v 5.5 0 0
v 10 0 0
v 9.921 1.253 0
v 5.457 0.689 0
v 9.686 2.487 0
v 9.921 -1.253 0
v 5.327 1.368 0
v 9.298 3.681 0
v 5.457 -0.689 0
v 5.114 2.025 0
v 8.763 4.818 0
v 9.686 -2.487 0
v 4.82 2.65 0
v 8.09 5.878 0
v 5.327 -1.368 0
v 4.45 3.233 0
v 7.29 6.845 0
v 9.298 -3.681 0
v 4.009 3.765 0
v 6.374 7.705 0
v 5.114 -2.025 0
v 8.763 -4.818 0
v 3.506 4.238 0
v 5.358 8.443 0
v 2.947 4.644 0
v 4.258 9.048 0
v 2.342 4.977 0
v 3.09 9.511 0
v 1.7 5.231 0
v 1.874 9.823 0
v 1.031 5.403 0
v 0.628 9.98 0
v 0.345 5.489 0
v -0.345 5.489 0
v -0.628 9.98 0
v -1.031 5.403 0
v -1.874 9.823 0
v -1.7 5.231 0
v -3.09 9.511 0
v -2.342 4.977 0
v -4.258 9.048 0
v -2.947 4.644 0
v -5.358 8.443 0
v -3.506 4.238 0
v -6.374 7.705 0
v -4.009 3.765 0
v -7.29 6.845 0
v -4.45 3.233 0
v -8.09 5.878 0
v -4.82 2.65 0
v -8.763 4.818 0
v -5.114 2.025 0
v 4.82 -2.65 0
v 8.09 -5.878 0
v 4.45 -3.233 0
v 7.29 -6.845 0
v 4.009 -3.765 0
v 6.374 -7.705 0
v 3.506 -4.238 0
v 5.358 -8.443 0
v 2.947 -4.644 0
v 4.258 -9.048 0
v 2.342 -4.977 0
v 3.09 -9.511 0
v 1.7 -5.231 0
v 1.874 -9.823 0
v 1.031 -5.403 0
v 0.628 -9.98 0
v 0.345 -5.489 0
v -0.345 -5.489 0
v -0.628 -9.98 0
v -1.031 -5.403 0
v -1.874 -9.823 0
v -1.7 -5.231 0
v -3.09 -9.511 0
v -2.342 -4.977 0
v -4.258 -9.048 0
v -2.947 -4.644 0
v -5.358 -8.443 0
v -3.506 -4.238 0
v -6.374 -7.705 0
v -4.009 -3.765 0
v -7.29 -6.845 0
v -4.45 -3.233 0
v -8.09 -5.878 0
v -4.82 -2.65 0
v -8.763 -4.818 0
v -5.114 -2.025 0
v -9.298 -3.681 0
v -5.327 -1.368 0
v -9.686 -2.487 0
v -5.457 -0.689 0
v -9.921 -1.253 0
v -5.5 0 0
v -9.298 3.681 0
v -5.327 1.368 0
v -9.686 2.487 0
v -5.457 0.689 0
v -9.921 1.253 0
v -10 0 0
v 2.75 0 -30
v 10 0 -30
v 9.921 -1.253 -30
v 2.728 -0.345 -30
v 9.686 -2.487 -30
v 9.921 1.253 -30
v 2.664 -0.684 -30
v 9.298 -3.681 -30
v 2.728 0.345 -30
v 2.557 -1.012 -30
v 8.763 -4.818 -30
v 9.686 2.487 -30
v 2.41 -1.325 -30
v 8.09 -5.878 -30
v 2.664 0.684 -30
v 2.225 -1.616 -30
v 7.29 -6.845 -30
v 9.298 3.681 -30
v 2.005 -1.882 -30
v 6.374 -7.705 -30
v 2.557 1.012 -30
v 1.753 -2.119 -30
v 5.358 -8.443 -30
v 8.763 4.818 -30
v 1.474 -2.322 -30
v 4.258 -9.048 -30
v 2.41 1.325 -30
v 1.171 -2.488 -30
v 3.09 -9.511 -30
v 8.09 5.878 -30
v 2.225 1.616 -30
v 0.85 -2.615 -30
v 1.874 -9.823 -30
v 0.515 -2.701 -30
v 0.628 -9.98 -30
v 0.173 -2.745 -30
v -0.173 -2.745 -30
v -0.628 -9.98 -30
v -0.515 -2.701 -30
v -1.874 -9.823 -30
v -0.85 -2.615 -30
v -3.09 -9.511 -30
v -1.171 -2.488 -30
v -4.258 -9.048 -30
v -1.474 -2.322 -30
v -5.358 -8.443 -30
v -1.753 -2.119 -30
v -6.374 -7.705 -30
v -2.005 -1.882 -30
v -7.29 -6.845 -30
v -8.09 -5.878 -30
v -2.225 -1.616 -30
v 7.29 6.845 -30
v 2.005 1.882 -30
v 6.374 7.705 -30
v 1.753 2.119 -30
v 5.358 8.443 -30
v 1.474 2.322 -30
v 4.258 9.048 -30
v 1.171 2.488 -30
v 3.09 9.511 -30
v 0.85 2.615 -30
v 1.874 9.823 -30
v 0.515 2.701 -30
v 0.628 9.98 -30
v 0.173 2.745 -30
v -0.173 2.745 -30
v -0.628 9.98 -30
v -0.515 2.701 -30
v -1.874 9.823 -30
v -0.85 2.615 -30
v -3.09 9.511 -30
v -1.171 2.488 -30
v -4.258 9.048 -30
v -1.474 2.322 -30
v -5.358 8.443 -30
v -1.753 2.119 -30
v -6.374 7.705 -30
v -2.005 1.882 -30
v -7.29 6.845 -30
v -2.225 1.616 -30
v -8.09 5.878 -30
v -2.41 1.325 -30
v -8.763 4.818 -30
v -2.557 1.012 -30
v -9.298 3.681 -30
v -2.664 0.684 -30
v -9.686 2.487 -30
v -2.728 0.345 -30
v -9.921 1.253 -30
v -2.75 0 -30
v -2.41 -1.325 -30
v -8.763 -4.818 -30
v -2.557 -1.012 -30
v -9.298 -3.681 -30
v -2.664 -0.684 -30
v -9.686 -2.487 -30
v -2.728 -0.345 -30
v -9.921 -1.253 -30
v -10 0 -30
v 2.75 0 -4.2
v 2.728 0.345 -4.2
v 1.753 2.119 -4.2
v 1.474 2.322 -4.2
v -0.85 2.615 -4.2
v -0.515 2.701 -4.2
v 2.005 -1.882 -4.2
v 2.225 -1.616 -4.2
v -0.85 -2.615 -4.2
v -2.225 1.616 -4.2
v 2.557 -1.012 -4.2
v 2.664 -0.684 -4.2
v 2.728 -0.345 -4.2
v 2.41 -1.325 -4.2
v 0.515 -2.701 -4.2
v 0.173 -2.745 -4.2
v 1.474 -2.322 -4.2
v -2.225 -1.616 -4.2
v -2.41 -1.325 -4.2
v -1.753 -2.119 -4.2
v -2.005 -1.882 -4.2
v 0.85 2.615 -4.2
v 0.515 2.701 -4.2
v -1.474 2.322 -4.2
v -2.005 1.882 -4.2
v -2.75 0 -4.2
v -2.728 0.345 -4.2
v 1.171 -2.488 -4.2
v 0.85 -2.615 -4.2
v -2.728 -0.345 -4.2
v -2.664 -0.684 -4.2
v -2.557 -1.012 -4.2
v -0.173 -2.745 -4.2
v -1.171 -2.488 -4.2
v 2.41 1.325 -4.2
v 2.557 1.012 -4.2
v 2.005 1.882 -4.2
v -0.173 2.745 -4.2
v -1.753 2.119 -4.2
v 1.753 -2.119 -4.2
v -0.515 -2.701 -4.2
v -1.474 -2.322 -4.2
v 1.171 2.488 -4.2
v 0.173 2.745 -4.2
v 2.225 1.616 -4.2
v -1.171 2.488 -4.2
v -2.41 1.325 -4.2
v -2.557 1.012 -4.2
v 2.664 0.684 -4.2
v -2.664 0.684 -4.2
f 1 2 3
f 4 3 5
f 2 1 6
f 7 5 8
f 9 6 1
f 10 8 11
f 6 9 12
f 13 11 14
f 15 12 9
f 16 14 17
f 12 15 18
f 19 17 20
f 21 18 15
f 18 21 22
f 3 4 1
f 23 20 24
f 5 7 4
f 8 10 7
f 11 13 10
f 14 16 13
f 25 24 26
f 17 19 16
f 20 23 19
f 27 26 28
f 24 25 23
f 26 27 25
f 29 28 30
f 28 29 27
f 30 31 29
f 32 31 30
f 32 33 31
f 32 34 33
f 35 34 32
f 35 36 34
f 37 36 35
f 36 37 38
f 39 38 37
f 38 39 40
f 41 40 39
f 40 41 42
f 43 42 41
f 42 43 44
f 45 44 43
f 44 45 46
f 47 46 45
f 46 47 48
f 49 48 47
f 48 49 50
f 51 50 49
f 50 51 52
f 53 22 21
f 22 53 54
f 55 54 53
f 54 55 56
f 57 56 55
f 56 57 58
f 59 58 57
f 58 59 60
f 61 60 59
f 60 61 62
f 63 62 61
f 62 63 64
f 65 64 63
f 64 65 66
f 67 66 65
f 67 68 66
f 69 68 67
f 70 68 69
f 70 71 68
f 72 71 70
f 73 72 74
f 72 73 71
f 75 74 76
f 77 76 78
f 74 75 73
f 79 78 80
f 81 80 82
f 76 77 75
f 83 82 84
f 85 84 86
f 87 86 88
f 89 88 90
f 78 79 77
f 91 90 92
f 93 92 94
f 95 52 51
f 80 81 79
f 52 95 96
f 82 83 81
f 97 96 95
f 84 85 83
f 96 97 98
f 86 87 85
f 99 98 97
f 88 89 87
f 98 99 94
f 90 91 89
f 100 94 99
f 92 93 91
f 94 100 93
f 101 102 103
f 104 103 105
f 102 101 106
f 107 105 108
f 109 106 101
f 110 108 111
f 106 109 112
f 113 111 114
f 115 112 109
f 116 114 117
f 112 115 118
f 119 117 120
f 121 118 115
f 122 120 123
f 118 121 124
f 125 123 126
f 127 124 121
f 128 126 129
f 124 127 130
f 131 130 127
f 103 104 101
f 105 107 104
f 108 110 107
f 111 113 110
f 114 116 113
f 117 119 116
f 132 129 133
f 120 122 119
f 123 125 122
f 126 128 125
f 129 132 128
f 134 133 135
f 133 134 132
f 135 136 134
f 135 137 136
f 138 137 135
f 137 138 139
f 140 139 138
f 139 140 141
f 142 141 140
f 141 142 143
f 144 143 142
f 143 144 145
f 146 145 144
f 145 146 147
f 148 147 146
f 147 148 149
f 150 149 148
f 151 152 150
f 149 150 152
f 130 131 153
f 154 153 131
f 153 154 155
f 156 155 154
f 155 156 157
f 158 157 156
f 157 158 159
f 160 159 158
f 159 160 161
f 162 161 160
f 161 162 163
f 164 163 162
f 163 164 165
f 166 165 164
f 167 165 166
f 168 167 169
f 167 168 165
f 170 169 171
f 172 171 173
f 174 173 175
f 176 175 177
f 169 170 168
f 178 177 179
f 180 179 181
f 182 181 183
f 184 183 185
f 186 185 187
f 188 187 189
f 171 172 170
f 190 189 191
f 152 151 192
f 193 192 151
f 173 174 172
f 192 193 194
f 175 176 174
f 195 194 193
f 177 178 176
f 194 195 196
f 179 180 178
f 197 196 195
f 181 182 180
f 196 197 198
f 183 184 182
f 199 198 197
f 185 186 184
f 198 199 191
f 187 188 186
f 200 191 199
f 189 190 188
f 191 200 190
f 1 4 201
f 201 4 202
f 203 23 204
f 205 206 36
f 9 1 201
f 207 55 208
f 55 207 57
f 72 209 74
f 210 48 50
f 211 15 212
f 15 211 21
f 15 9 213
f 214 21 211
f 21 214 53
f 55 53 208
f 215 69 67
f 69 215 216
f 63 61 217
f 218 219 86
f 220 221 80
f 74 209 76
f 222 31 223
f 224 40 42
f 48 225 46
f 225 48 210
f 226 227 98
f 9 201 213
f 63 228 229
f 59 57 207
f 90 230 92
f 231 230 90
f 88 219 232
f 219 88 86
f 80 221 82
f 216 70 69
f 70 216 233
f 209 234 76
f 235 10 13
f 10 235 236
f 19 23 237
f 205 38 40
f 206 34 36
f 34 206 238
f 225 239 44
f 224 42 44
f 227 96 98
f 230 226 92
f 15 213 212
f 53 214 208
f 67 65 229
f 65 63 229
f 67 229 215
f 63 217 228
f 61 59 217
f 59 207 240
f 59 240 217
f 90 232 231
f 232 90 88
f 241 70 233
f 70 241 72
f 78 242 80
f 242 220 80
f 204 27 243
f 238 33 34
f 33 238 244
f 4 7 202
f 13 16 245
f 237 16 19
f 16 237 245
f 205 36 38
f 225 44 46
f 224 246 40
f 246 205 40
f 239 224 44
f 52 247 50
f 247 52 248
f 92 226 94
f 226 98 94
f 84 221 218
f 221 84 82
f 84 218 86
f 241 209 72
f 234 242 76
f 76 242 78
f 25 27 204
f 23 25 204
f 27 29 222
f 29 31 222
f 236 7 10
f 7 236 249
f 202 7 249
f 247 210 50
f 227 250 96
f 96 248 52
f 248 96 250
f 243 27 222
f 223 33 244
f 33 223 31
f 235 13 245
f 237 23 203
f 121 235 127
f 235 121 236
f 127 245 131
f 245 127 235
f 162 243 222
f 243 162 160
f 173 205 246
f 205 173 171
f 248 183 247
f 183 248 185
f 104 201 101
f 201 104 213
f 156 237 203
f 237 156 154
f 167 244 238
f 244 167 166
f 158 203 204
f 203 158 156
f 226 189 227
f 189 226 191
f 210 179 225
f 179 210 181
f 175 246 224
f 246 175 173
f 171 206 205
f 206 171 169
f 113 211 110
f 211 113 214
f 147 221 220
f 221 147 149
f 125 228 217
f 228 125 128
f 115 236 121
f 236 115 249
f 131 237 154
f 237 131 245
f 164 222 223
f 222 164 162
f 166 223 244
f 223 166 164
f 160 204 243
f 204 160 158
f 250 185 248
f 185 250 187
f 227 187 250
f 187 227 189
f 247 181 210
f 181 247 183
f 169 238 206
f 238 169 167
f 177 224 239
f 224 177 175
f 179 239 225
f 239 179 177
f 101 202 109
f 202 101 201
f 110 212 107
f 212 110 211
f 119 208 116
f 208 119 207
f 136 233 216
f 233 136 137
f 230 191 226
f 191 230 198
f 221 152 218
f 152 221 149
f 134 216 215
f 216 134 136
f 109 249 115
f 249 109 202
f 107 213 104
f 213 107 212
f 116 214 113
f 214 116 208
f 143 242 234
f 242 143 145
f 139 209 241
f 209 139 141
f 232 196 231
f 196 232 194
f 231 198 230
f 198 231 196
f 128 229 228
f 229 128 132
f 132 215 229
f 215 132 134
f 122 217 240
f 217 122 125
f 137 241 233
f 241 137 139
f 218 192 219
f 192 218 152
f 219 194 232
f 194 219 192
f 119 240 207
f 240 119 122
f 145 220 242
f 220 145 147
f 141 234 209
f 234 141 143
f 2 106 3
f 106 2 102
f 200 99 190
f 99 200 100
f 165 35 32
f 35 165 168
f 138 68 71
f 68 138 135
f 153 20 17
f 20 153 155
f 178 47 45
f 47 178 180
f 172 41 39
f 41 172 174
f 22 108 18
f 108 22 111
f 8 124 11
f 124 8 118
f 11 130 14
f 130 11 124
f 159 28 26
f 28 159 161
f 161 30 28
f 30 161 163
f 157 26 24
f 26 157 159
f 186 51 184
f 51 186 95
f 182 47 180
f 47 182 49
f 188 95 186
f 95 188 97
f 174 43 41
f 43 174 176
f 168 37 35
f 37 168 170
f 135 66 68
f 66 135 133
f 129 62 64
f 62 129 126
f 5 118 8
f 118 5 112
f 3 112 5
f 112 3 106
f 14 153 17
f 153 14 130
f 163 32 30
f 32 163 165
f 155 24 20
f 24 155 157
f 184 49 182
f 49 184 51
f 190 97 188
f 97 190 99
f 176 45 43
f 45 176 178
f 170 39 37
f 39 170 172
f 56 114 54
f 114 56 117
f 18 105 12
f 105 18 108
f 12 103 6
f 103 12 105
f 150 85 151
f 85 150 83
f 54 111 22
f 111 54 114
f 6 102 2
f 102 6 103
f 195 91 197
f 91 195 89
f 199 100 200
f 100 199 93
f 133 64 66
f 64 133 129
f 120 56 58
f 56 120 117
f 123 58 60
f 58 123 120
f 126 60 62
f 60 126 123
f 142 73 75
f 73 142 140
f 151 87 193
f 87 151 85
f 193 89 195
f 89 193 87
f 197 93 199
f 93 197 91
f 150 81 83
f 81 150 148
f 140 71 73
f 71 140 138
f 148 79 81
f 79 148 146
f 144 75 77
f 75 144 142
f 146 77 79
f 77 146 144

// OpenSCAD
$fn = 50;


difference() {
	union() {
		translate(v = [0, 0, -30.0000000000]) {
			cylinder(h = 30, r = 10.0000000000);
		}
		cylinder(h = 0, r = 16.0000000000);
	}
	union() {
		translate(v = [0, 0, 0]) {
			rotate(a = [0, 0, 0]) {
				difference() {
					union() {
						#translate(v = [0, 0, -30.0000000000]) {
							cylinder(h = 30, r = 2.2500000000);
						}
						#translate(v = [0, 0, -4.2000000000]) {
							cylinder(h = 4.2000000000, r1 = 2.7500000000, r2 = 5.5000000000);
						}
						#translate(v = [0, 0, -30.0000000000]) {
							cylinder(h = 30, r = 2.7500000000);
						}
						#translate(v = [0, 0, -30.0000000000]) {
							cylinder(h = 30, r = 2.2500000000);
						}
					}
					union();
				}
			}
		}
	}
}
